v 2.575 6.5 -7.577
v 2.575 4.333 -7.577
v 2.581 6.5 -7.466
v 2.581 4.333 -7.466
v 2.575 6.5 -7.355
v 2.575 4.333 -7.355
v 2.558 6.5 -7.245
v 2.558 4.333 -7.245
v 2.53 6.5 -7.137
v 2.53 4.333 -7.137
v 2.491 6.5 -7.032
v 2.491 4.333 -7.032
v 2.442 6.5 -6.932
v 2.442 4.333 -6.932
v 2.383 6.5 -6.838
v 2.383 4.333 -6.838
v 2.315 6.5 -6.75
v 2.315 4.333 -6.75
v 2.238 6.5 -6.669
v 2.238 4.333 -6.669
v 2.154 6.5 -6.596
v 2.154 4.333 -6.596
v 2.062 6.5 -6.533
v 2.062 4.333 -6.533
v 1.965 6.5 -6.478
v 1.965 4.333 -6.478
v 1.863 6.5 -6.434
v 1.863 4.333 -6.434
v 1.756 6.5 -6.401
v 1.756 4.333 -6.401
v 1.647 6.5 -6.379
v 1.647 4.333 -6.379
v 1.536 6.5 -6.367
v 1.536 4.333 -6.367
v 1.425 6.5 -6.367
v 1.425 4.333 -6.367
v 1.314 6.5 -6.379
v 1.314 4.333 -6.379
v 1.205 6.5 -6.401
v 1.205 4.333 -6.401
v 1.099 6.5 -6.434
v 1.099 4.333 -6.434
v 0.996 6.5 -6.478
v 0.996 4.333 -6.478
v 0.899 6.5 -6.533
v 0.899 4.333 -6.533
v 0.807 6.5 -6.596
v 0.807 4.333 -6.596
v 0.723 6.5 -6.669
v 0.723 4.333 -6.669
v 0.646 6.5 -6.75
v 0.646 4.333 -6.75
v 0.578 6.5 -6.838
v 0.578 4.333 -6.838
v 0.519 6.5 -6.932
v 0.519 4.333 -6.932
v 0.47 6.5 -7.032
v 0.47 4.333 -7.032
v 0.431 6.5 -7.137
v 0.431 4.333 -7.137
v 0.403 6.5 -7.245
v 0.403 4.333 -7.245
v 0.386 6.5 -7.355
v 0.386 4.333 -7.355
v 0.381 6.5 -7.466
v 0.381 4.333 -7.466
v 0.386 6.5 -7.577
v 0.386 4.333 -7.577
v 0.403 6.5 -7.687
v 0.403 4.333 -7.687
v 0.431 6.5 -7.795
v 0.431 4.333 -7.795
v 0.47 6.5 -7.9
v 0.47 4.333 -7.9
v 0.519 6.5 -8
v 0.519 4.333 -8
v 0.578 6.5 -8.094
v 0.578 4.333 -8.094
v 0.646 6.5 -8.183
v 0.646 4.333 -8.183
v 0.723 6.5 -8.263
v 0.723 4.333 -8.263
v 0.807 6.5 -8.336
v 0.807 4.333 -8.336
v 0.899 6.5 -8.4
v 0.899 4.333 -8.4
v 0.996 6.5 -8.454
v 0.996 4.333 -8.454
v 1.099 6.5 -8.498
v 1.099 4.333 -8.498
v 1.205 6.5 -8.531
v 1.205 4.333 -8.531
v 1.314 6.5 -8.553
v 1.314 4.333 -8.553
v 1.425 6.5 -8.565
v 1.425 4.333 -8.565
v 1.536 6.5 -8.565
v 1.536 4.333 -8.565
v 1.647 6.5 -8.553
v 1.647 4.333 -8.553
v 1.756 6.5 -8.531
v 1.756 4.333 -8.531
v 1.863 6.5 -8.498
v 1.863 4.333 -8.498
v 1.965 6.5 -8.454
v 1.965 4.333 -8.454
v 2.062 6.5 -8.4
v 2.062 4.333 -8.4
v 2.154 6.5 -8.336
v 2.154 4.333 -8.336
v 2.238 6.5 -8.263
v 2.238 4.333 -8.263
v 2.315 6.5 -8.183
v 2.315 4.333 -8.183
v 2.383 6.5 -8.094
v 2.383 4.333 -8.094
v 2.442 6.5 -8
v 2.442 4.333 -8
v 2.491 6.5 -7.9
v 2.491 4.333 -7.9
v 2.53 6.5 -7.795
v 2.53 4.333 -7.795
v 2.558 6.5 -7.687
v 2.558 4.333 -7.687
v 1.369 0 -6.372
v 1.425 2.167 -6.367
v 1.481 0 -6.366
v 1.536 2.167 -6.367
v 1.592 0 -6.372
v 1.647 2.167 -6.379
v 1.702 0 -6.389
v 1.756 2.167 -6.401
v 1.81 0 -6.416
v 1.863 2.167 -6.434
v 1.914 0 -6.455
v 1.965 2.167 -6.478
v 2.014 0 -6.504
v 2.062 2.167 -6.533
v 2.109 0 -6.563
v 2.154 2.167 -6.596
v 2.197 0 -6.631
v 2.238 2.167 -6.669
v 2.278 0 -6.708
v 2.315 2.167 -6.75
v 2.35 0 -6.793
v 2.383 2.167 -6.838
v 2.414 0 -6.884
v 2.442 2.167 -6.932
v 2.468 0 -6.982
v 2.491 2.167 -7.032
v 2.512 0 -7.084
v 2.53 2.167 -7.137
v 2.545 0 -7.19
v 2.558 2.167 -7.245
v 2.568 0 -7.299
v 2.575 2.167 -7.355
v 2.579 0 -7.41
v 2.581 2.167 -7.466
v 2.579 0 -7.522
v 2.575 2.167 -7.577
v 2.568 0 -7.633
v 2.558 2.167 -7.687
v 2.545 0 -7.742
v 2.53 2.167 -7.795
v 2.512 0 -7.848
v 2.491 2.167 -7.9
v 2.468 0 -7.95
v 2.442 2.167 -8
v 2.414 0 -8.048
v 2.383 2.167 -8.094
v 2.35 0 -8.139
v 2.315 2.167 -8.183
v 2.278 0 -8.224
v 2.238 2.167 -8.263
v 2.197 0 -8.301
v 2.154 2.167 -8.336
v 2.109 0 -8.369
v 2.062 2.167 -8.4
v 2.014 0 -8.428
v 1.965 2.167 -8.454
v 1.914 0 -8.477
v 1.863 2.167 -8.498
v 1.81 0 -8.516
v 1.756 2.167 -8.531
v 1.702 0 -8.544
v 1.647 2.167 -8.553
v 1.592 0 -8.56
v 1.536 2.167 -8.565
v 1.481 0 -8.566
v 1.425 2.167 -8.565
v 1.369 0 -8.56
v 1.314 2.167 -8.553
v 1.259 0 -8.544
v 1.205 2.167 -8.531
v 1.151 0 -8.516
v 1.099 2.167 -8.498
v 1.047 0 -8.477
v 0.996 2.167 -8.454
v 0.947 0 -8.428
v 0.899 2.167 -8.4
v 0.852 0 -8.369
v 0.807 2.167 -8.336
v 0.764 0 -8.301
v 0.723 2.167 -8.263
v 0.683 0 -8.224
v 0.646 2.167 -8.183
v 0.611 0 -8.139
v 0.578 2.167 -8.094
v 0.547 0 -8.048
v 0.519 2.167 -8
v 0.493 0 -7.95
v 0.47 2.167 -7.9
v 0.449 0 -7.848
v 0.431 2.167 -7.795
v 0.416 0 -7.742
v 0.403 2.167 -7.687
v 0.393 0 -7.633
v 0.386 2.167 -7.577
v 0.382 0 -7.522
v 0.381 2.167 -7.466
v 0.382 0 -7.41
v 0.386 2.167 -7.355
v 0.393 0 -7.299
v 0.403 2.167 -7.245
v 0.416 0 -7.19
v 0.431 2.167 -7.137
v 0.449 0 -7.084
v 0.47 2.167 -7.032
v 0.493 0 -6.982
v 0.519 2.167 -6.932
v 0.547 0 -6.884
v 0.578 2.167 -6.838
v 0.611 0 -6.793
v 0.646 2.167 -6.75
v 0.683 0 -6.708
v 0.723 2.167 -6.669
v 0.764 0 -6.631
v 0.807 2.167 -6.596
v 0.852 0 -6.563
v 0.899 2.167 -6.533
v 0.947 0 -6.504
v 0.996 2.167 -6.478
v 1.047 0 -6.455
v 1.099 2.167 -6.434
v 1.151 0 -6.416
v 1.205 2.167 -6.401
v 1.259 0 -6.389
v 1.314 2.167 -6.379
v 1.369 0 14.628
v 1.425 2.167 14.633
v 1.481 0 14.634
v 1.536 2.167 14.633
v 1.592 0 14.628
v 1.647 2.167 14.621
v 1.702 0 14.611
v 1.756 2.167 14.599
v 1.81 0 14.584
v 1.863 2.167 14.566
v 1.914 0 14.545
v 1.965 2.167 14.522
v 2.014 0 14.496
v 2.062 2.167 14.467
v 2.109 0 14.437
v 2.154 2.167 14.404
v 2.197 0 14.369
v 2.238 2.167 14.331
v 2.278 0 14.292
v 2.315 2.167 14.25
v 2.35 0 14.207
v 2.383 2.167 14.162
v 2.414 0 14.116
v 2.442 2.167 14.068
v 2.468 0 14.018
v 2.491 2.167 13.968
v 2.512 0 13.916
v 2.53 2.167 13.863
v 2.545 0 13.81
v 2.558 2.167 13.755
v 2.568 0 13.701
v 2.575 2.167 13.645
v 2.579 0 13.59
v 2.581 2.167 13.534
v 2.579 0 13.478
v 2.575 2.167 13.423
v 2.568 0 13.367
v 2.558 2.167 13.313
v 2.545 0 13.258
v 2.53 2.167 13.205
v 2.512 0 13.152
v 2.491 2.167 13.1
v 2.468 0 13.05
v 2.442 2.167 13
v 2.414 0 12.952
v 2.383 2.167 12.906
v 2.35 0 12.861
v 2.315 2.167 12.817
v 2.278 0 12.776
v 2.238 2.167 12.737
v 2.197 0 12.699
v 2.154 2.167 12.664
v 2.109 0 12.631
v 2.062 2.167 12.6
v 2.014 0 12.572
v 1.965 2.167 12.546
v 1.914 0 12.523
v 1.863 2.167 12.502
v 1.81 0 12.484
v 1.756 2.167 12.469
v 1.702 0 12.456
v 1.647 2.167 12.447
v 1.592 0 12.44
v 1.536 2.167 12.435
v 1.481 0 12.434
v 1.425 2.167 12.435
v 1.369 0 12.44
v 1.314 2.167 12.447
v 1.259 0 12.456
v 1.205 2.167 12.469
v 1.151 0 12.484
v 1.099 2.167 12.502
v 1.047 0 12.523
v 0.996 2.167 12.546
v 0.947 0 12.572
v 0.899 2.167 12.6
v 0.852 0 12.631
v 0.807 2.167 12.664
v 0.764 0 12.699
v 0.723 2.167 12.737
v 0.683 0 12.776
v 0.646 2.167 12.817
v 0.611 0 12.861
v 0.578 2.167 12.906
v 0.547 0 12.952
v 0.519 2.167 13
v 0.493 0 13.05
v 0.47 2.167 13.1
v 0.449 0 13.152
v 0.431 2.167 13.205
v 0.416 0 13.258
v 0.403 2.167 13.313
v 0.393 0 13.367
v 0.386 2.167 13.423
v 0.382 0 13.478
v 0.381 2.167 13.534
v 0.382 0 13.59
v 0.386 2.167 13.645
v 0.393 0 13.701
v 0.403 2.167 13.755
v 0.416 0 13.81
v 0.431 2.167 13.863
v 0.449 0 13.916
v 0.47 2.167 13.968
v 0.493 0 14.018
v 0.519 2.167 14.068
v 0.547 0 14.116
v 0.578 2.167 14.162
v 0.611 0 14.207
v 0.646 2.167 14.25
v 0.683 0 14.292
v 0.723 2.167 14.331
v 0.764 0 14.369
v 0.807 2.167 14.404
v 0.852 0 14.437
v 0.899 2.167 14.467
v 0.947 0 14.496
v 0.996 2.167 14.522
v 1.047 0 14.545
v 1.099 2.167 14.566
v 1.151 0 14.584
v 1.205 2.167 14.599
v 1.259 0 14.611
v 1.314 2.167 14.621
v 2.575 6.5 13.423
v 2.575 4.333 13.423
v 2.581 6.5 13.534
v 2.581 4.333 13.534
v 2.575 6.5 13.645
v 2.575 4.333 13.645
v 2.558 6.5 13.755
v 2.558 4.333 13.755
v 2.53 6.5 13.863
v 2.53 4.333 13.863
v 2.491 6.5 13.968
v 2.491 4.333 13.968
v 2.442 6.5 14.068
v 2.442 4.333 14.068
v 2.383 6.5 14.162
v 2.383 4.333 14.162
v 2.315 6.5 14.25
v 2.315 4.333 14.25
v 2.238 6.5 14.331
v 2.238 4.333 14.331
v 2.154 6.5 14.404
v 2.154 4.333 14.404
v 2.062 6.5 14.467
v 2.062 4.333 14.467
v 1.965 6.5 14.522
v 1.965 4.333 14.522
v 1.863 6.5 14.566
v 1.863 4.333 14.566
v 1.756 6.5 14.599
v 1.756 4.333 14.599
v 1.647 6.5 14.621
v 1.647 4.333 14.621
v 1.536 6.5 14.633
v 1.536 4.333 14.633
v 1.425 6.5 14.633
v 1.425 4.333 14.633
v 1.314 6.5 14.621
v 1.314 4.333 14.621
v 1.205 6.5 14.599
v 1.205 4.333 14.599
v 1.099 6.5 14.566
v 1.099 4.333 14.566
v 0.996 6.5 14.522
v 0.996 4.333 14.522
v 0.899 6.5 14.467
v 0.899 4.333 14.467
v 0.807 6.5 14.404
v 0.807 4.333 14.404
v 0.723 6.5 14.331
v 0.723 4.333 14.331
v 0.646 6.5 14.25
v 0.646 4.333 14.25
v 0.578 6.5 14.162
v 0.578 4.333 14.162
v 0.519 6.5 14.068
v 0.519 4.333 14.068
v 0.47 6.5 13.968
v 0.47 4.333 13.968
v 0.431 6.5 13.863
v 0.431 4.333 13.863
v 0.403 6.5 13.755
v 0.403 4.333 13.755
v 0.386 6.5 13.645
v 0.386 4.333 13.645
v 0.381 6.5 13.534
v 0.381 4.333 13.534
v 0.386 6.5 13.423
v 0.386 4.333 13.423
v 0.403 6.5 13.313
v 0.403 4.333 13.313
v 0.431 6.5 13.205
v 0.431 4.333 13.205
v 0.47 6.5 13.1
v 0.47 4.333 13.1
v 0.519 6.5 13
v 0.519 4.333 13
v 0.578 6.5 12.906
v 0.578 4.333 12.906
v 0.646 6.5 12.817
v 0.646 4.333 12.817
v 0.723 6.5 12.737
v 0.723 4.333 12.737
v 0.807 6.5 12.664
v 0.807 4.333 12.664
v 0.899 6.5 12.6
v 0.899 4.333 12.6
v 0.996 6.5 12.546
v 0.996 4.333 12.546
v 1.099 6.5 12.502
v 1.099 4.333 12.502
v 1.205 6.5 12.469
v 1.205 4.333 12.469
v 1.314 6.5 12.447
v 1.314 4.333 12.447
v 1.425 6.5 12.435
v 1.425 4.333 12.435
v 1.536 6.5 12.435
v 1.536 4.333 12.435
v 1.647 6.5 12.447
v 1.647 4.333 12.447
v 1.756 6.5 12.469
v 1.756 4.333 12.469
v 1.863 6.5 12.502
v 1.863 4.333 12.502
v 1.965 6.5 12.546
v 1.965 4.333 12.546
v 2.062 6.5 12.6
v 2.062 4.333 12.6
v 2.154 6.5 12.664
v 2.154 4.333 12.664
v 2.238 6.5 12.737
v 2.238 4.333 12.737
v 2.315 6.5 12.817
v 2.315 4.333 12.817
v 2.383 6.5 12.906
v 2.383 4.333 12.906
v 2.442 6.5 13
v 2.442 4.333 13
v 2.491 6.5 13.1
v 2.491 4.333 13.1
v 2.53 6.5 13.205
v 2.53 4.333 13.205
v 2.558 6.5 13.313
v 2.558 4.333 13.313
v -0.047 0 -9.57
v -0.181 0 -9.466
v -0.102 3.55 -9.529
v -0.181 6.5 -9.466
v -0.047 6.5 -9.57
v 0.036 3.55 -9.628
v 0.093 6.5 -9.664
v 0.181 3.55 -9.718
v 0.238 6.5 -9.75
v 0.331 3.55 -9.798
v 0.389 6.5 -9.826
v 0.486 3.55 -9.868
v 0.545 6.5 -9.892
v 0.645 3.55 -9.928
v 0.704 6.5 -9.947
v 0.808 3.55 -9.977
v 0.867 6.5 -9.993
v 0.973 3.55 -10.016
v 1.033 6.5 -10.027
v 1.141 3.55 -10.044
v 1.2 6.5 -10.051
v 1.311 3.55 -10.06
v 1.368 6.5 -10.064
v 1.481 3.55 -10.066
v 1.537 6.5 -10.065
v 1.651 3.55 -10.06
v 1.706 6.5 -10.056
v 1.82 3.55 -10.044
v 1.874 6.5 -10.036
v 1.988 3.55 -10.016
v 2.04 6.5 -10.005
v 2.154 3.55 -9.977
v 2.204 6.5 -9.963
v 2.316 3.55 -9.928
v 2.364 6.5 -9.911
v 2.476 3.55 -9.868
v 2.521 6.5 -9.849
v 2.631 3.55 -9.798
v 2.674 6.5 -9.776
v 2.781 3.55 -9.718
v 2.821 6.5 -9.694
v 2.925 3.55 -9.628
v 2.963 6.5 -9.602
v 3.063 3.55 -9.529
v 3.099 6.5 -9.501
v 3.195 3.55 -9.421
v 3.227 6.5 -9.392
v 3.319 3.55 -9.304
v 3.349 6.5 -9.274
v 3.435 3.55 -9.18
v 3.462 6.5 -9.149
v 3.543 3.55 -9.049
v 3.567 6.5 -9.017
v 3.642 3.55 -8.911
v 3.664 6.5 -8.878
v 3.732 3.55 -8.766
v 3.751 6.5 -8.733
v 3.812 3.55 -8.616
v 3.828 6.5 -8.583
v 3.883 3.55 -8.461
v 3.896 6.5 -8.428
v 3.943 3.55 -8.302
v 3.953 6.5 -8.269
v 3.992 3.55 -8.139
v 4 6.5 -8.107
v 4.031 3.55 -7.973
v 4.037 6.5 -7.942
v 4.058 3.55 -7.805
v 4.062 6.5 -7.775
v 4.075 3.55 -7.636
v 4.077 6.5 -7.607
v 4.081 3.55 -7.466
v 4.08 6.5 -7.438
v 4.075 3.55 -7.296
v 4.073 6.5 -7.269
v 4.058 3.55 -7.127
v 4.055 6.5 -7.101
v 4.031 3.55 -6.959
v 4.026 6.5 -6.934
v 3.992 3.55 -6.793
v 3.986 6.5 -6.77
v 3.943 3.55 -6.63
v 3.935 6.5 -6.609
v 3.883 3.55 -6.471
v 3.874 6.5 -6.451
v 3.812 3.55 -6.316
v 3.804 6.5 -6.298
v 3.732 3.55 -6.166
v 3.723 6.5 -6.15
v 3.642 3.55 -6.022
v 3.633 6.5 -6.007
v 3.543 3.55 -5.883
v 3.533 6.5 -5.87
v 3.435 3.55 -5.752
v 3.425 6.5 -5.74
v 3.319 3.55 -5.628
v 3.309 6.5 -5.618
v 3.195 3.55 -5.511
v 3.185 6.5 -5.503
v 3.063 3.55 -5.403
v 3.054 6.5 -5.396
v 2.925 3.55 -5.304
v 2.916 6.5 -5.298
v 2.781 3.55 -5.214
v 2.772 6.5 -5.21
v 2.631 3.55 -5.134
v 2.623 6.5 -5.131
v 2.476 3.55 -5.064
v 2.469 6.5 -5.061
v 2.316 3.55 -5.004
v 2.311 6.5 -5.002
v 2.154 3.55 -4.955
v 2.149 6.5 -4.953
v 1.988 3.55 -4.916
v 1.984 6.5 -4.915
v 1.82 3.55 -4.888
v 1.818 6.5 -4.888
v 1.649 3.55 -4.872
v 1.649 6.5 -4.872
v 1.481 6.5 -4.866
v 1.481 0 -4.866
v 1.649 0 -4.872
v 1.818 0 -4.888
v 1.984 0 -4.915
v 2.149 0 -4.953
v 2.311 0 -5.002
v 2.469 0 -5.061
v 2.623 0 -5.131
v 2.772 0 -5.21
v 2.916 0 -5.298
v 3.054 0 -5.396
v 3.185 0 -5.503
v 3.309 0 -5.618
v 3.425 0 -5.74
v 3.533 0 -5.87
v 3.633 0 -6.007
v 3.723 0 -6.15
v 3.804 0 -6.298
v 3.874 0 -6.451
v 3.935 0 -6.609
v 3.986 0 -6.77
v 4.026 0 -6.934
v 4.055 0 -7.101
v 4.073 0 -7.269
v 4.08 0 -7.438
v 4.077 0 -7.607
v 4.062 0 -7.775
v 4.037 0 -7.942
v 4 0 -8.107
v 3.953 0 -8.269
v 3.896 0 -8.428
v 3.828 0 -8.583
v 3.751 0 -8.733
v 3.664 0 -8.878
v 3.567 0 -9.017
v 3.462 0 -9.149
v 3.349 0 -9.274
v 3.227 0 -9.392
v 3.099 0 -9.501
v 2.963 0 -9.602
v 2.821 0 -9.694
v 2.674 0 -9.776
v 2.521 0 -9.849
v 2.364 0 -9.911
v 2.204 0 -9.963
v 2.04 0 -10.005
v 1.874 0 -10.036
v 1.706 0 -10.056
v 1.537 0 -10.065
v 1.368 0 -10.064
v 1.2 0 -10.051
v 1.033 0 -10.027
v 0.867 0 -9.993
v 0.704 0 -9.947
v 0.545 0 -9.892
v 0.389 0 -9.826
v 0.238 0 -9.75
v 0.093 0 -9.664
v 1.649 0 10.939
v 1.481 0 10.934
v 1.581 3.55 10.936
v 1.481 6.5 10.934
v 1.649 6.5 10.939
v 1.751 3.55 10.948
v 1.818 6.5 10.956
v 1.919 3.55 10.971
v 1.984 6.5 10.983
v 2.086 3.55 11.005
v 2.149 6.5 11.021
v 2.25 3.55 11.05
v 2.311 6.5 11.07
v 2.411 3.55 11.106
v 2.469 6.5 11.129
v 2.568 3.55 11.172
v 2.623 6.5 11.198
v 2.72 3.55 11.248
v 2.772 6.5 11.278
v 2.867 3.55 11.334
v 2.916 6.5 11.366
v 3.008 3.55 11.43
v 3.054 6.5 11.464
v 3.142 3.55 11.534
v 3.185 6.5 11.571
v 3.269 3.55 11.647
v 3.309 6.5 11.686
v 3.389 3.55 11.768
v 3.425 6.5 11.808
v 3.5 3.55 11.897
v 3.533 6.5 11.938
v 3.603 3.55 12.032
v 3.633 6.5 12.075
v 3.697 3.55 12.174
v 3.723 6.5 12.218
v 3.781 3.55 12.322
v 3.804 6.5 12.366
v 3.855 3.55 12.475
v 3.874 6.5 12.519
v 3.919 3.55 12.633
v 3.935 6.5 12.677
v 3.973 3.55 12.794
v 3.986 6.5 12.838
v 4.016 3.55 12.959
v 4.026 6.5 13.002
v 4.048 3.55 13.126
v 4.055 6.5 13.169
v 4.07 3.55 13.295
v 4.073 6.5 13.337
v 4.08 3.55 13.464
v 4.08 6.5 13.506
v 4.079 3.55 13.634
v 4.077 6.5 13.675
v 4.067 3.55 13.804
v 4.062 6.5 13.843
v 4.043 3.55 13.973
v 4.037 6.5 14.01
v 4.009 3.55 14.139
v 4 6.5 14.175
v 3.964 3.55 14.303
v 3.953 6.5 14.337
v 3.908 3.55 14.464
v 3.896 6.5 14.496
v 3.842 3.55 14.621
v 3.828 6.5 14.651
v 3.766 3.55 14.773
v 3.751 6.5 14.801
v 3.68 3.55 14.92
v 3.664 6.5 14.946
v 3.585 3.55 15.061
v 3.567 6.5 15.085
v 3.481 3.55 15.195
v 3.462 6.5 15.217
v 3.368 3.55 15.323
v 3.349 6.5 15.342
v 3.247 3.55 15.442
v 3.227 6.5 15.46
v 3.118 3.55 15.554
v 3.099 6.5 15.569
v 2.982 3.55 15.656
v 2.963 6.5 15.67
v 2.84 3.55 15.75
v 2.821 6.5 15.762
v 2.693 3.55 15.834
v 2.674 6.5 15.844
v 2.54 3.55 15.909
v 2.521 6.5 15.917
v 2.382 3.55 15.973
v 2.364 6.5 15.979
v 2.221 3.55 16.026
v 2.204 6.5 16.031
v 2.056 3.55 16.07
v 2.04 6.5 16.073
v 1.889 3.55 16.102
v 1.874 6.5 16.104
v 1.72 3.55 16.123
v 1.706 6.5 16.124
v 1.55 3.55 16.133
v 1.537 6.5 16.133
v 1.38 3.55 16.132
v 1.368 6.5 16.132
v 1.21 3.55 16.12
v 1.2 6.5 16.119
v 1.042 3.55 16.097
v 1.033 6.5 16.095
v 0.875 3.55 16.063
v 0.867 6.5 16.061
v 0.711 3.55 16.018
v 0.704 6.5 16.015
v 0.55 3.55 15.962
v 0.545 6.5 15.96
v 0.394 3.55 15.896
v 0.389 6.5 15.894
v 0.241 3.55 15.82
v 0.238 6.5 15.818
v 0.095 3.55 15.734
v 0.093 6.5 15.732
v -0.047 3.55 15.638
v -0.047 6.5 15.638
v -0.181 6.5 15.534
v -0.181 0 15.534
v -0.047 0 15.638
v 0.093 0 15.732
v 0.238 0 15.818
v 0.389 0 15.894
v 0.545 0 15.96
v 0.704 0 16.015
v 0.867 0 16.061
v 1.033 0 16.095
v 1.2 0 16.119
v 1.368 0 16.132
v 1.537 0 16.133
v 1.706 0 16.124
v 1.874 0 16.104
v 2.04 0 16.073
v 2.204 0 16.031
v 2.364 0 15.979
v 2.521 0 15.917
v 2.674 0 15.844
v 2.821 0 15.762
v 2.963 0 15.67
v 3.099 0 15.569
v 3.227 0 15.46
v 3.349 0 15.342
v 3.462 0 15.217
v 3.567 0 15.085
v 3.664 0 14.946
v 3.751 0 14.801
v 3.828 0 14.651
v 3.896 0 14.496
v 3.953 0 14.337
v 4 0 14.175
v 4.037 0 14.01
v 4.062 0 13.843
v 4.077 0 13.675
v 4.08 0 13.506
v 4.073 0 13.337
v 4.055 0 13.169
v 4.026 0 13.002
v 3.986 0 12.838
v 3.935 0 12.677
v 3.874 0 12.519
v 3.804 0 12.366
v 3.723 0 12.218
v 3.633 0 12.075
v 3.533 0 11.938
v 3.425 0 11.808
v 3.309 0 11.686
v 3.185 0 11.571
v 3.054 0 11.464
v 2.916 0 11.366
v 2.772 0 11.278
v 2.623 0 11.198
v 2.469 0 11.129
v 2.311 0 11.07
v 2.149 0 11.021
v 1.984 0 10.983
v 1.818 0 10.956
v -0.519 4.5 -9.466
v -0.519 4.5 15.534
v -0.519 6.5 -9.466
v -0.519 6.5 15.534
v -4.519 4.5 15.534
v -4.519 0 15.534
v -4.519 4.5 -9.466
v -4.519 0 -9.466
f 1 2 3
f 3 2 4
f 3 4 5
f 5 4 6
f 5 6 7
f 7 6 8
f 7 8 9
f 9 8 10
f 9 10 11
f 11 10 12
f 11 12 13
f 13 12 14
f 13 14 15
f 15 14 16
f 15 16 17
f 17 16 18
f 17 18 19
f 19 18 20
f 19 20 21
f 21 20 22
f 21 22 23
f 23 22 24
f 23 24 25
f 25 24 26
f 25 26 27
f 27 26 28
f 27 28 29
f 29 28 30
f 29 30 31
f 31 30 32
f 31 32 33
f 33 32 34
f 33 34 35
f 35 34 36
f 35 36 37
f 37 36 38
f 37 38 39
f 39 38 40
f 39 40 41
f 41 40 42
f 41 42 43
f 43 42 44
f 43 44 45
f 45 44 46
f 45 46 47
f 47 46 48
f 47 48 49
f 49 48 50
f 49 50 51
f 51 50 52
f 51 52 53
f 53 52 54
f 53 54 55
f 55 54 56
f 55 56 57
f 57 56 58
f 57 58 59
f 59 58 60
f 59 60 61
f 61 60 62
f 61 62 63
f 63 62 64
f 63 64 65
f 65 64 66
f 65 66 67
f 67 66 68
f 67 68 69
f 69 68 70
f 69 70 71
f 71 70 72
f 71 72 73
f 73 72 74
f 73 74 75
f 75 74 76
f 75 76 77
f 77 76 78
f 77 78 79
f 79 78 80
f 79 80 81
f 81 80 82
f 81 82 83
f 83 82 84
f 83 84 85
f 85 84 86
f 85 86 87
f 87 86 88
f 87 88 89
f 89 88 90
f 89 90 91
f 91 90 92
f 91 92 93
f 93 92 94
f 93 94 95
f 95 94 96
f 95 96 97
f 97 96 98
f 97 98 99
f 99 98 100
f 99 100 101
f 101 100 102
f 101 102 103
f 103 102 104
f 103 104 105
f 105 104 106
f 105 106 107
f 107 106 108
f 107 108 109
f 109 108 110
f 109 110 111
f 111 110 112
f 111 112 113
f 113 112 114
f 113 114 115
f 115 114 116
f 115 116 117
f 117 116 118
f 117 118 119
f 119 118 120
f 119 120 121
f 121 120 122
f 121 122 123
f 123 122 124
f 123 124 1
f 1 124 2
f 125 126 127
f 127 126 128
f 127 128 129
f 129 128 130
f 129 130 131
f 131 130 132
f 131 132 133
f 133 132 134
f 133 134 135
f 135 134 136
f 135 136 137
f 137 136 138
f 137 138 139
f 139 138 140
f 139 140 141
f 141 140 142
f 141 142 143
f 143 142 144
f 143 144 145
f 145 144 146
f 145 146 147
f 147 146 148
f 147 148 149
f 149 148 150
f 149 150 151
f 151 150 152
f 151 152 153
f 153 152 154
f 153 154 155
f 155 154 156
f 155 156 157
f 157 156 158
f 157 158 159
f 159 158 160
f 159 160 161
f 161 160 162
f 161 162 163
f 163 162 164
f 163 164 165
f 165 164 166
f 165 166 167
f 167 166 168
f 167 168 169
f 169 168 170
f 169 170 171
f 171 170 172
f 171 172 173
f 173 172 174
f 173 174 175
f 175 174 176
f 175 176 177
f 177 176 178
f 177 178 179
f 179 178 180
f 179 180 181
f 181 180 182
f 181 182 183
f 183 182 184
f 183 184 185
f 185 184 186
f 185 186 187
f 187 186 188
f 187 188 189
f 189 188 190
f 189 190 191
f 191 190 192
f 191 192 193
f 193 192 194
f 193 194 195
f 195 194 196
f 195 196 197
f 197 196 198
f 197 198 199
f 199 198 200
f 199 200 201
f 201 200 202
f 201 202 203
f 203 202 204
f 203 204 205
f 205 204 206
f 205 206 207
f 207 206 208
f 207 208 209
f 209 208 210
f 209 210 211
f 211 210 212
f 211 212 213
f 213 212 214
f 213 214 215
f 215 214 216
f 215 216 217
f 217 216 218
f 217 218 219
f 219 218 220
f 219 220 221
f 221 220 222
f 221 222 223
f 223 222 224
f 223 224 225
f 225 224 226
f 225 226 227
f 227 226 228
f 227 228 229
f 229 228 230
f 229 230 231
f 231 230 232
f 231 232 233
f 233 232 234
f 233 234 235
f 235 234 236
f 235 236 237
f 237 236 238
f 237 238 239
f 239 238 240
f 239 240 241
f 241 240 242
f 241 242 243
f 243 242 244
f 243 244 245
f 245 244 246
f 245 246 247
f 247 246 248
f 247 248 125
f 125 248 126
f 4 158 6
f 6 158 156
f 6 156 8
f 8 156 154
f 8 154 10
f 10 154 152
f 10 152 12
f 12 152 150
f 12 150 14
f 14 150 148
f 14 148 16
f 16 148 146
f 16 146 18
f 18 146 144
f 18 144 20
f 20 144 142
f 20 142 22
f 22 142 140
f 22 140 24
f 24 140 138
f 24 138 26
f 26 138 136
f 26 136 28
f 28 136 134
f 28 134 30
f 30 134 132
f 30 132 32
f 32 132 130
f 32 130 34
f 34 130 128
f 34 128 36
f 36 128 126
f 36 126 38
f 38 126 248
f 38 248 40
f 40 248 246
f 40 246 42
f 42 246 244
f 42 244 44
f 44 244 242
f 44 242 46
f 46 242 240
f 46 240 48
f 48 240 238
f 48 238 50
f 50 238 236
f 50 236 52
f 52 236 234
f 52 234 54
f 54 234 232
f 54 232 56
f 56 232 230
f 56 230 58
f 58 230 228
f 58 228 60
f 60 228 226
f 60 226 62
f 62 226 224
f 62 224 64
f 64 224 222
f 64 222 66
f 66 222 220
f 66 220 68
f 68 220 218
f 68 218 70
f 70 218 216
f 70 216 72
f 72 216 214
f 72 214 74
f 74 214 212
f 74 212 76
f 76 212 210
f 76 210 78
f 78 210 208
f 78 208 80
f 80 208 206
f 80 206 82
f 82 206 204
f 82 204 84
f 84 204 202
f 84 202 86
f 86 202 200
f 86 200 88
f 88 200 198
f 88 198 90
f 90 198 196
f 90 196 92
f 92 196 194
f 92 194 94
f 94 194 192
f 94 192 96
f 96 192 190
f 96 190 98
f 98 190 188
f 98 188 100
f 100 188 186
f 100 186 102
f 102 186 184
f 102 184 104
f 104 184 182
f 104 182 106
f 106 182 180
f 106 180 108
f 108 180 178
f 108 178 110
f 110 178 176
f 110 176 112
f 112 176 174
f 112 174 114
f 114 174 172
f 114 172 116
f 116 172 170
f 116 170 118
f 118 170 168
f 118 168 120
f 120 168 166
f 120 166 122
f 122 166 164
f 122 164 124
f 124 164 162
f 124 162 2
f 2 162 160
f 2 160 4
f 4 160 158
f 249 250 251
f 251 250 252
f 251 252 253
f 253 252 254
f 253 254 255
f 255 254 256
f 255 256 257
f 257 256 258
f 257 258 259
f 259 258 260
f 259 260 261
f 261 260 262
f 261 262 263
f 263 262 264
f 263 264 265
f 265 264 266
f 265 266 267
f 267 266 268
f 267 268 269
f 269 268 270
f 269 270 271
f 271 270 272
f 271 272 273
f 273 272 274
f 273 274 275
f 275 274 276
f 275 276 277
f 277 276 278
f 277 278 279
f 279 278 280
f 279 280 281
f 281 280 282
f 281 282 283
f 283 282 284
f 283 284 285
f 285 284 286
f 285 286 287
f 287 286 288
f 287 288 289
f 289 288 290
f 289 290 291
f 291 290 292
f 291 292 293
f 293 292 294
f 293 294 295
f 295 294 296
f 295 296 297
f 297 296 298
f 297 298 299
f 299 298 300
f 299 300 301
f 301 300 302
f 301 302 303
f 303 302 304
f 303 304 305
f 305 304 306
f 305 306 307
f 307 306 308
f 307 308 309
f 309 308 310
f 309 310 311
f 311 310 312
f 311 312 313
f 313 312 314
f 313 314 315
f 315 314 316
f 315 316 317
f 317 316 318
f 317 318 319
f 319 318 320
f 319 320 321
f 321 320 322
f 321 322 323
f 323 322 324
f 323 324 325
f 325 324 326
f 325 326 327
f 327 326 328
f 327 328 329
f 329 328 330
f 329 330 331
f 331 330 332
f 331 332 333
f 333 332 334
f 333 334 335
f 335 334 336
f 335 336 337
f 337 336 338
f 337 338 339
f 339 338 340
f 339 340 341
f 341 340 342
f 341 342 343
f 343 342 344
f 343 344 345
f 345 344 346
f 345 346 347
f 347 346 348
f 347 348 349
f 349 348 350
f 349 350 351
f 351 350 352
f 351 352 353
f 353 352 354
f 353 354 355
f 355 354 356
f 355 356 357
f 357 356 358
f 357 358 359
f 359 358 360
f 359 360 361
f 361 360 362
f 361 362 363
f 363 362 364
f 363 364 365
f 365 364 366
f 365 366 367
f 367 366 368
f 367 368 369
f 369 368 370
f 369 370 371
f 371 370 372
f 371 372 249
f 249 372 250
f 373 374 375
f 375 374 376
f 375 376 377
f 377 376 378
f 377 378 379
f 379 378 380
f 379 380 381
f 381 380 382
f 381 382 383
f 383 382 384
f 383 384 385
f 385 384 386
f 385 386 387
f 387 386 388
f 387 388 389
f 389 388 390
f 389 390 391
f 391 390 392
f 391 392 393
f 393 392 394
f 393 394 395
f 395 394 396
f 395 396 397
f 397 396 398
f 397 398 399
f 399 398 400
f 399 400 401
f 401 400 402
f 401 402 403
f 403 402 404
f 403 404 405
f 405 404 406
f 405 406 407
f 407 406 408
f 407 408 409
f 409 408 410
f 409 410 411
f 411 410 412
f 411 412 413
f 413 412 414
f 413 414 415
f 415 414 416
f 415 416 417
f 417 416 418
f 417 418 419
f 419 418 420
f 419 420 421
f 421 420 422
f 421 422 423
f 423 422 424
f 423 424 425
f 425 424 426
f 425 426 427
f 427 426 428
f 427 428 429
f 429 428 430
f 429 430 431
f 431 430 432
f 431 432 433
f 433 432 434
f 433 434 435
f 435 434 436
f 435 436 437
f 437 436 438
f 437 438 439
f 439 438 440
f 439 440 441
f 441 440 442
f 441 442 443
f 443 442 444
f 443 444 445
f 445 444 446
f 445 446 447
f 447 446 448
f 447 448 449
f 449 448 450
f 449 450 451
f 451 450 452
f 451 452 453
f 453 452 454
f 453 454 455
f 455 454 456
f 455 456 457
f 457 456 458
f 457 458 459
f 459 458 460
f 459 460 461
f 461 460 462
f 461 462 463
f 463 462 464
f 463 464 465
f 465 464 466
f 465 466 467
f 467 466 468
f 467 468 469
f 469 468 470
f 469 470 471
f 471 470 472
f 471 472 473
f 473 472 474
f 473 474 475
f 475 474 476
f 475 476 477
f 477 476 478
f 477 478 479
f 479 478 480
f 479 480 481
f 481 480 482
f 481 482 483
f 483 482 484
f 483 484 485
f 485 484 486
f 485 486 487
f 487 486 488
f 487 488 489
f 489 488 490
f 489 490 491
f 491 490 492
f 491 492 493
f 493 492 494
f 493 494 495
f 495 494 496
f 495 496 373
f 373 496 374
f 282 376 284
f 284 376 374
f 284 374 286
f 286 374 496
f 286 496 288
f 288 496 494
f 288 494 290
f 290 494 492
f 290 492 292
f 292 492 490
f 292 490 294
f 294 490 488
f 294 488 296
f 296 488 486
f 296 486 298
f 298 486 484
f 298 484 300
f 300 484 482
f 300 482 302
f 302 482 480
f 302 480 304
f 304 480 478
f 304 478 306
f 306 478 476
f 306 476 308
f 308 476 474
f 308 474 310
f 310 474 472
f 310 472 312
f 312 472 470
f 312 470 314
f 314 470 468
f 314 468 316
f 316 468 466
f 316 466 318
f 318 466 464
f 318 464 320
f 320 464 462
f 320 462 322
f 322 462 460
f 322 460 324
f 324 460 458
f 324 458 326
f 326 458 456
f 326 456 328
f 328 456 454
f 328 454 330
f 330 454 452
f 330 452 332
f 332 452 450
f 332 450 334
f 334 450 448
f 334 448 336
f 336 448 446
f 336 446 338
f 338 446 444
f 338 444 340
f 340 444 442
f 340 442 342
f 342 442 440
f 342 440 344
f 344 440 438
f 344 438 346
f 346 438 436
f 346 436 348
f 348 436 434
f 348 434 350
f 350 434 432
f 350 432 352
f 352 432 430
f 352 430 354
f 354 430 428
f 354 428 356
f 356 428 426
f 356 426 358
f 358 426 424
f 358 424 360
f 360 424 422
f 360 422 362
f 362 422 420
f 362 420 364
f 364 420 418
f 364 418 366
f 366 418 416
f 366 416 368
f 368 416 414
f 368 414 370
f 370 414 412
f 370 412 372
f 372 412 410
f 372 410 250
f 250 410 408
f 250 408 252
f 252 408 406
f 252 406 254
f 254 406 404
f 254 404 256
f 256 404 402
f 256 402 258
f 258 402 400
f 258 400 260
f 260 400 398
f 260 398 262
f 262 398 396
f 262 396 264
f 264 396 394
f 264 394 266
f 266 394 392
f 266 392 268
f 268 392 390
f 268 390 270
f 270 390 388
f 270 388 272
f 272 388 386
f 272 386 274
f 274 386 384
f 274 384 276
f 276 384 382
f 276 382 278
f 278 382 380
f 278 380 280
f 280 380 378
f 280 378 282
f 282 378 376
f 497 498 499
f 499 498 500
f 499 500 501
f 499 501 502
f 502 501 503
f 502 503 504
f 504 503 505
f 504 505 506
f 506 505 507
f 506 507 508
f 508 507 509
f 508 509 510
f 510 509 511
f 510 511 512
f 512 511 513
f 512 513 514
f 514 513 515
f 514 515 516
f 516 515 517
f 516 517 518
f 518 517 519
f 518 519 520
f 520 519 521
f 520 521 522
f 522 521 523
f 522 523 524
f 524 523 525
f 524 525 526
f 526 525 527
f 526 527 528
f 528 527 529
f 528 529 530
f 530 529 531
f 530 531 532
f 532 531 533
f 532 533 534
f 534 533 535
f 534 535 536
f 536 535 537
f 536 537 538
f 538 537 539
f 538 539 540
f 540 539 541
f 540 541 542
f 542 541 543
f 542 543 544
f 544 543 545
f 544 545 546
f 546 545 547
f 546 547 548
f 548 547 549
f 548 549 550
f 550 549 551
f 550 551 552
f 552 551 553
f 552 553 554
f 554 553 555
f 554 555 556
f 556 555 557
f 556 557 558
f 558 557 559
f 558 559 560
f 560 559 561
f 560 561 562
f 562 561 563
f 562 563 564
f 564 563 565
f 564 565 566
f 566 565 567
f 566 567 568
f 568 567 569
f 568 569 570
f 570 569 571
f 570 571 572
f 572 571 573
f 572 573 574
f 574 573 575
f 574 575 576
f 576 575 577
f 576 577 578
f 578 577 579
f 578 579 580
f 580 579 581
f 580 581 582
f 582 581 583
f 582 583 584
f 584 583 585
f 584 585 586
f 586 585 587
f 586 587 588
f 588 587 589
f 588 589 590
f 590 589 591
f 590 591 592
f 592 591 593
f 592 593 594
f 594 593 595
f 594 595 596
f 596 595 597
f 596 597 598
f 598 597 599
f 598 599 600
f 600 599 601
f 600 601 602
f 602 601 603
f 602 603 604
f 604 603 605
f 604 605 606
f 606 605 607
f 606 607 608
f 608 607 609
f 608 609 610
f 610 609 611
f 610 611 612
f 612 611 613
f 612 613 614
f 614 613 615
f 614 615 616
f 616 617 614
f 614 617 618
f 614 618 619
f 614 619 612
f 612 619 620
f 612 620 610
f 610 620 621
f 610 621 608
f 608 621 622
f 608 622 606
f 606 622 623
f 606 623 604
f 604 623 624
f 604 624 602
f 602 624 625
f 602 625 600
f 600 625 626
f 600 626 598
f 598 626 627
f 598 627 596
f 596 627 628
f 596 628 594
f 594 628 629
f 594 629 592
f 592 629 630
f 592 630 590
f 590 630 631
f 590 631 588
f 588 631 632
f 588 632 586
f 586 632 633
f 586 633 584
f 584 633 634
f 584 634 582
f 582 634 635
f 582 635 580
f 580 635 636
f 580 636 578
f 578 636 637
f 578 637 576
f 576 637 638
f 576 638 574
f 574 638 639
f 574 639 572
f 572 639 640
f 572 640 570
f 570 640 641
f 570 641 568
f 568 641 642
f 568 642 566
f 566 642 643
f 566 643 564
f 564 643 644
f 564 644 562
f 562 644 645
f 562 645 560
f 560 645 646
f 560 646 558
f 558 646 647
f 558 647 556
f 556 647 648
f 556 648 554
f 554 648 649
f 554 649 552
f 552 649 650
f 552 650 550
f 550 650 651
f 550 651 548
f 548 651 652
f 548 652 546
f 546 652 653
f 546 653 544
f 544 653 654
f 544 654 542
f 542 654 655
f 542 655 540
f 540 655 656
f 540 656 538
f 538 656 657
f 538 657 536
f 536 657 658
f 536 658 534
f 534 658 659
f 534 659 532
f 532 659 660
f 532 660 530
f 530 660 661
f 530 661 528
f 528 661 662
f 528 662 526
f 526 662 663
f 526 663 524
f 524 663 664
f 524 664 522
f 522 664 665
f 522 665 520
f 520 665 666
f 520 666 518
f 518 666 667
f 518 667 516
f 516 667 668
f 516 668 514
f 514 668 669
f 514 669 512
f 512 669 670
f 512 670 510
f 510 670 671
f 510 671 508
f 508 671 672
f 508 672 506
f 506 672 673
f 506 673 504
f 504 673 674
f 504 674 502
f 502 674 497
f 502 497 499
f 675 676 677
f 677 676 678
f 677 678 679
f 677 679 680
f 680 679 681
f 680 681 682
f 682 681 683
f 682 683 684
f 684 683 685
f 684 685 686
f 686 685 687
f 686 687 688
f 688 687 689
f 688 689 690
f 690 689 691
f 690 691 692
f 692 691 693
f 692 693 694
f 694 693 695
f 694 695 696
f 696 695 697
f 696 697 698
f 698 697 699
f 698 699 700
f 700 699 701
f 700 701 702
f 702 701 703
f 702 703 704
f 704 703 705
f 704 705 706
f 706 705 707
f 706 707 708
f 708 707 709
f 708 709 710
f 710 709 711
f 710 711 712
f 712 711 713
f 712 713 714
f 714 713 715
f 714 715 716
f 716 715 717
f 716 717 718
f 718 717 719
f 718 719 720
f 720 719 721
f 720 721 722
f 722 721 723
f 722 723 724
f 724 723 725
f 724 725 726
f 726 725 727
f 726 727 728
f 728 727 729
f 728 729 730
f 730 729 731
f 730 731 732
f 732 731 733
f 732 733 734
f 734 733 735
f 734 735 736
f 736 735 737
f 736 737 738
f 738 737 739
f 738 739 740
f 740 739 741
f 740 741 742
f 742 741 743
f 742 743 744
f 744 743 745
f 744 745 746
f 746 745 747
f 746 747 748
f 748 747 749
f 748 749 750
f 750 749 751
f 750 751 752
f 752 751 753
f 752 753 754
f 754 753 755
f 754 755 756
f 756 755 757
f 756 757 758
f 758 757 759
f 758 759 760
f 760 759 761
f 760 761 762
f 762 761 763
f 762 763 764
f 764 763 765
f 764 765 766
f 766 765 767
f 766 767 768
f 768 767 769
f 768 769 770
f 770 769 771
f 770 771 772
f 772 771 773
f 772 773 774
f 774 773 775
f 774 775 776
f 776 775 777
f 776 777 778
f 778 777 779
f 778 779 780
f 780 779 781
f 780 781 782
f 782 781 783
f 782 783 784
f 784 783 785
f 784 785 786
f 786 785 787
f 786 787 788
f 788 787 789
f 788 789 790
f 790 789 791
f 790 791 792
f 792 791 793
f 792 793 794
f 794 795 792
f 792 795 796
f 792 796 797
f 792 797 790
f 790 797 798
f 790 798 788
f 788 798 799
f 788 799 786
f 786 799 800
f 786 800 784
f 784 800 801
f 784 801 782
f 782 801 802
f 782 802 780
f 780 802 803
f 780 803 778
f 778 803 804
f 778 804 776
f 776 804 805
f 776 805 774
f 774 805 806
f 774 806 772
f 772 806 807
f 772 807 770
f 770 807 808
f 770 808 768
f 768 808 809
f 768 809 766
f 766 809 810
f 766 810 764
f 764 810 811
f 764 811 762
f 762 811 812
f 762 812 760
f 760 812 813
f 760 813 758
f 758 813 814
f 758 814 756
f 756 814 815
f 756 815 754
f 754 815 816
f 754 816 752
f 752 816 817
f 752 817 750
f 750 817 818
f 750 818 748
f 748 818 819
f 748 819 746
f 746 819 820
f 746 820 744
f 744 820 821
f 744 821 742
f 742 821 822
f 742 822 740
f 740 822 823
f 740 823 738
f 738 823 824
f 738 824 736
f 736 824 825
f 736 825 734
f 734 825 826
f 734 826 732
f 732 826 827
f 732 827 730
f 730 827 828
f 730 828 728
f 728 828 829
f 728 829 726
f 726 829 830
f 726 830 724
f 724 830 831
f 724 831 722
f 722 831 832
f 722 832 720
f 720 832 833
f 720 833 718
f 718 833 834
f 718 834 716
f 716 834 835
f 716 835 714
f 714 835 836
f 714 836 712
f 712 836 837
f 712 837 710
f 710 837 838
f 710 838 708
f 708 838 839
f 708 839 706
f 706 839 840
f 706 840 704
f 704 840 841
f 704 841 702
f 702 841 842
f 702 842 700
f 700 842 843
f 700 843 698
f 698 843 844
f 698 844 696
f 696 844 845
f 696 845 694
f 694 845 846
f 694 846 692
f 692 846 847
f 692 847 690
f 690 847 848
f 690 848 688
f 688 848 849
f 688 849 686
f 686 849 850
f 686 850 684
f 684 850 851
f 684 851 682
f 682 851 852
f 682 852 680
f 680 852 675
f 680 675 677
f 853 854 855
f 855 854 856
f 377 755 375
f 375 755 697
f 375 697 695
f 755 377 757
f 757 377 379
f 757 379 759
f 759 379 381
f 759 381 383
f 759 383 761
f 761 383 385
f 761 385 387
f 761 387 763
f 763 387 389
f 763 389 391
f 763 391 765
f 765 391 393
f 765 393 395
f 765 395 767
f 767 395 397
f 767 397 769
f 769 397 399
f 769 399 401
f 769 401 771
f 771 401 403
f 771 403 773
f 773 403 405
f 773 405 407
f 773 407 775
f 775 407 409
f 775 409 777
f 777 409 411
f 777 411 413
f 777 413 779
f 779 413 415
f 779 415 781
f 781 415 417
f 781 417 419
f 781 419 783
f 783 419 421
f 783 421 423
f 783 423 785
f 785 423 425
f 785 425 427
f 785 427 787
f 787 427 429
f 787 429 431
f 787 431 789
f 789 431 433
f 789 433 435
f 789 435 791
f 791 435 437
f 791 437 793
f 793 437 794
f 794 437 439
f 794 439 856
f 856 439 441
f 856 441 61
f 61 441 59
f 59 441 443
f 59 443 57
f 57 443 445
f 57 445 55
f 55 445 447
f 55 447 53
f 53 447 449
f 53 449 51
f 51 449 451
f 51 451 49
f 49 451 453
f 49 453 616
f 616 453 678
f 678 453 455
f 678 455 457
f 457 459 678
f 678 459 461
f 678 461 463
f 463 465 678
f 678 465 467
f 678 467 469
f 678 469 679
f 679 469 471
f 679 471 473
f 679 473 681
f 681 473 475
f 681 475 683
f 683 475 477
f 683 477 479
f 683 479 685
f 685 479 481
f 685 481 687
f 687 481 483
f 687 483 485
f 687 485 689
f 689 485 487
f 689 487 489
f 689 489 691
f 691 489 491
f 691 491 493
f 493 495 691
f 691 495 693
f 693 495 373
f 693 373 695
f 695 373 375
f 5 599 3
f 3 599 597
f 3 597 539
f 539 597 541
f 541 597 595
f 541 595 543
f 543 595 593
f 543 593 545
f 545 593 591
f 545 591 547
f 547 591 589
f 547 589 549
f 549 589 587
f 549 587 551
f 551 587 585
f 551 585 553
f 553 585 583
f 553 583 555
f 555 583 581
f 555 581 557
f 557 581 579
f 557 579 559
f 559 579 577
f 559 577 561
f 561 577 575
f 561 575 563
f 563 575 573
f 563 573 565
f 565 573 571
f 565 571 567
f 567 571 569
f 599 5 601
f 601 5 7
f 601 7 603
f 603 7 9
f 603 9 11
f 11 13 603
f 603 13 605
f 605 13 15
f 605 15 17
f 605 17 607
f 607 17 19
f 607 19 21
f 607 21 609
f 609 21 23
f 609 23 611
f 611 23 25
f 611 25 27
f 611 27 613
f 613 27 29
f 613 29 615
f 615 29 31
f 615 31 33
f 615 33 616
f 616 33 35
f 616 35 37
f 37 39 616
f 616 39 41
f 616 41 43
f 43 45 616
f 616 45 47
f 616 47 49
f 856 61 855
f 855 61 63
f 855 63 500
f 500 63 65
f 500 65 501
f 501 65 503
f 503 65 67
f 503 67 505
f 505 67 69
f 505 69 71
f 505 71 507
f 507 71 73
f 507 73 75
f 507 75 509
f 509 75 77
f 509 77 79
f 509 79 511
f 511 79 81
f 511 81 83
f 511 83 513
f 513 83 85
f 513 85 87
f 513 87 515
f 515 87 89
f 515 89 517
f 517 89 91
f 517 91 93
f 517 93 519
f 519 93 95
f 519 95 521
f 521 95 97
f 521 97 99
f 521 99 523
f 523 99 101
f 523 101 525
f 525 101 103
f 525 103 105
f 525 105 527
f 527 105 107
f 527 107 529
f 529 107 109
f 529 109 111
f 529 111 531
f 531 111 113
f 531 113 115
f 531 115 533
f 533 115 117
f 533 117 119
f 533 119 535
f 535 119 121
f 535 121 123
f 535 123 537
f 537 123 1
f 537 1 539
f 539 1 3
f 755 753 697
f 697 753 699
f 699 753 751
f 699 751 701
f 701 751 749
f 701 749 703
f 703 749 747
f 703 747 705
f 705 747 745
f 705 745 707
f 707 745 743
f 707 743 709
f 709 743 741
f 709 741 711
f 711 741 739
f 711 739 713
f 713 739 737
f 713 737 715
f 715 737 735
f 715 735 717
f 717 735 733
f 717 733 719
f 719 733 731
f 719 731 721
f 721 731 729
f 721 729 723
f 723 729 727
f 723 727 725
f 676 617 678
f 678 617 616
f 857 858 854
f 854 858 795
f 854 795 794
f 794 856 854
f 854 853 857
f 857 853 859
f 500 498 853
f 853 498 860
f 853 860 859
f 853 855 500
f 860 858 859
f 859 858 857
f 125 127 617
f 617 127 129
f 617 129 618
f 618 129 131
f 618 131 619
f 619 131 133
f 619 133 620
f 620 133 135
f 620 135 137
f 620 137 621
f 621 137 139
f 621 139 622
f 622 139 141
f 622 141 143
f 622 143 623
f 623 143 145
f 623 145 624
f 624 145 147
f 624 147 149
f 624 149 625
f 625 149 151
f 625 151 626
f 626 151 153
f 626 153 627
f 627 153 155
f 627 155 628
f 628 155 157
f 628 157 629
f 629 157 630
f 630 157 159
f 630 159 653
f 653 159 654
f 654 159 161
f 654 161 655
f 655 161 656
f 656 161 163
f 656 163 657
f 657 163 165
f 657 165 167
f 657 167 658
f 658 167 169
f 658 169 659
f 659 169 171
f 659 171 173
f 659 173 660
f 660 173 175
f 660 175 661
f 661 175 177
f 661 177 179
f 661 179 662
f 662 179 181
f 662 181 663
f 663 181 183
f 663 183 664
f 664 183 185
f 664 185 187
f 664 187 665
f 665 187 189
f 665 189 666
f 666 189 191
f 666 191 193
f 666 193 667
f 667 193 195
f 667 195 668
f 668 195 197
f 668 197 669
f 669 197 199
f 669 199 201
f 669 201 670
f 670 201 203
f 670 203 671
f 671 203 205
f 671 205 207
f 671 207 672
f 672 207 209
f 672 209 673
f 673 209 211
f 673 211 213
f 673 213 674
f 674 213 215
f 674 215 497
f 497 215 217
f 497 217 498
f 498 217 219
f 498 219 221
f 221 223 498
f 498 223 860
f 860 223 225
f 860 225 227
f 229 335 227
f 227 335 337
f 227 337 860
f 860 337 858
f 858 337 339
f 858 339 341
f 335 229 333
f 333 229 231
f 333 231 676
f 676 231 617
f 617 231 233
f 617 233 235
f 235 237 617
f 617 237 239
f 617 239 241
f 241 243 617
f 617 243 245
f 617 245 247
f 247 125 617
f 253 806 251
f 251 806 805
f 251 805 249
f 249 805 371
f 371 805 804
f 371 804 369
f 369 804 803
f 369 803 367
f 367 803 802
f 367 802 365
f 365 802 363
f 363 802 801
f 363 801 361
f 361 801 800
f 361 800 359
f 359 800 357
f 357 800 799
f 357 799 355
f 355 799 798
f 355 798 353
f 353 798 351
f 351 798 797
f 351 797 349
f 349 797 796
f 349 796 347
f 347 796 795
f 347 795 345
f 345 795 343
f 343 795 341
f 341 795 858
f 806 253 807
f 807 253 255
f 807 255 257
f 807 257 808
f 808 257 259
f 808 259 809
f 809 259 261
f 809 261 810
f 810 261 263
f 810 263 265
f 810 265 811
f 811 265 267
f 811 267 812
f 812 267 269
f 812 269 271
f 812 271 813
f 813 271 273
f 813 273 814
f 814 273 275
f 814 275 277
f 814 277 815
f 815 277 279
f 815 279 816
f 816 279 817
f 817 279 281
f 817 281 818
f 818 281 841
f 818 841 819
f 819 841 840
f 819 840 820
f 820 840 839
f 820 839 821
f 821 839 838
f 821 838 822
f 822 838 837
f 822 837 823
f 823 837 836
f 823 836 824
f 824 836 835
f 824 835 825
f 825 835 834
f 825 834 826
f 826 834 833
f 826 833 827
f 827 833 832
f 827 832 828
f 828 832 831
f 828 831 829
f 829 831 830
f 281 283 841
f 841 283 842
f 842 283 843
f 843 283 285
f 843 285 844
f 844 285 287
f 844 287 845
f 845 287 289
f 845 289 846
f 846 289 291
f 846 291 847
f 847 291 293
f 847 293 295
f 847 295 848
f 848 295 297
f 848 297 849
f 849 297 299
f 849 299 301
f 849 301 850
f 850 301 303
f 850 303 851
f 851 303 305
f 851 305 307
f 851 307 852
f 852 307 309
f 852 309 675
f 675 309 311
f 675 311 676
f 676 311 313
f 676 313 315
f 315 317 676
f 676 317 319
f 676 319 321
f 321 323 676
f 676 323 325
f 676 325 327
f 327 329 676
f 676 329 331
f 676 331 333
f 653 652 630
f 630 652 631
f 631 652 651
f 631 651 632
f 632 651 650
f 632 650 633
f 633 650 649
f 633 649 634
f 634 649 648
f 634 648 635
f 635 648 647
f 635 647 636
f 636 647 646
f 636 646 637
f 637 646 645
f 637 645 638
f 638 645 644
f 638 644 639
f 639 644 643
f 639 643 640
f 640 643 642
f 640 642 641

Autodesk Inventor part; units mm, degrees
ref_plane "YZ Plane" through (0, 0, 0) normal (1, 0, 0) x (0, 1, 0)
ref_plane "XZ Plane" through (0, 0, 0) normal (0, 1, 0) x (-1, 0, 0)
ref_plane "XY Plane" through (0, 0, 0) normal (0, 0, 1) x (1, 0, 0)
sketch "Sketch1" plane through (0, 0, 0) normal (0, 1, 0) x (-1, 0, 0)
  line L0 (4.5194, 15.534) -> (-1.4806, 15.534)
  line L1 (-1.4806, 15.534) -> (-1.4806, -9.466)
  line L2 (-1.4806, -9.466) -> (4.5194, -9.466)
  line L3 (4.5194, -9.466) -> (4.5194, 15.534)
  point P0 (0, 0)
  dimension "d0" = 25
  dimension "d1" = 6
extrude "Extrusion1" add sketch "Sketch1" along normal blind 4.5
sketch "Sketch2" plane through (0, 4.5, 0) normal (0, 1, 0) x (1, 0, 0)
  line L0 (1.4806, -15.534) -> (1.4806, 9.466) projected
  line L1 (-4.5194, -15.534) -> (1.4806, -15.534) projected
  line L2 (-0.1807, 9.466) -> (-0.5194, 9.466)
  line L3 (-0.5194, 9.466) -> (-0.5194, -15.534)
  line L4 (-0.5194, -15.534) -> (-0.1807, -15.534)
  circle A0 centre (1.4806, 7.466) radius 1.1
  circle A1 centre (1.4806, -13.534) radius 1.1
  arc A2 (-0.1807, -15.534) -> (1.4806, -10.934) centre (1.4806, -13.534) ccw
  arc A3 (1.4806, 4.866) -> (-0.1807, 9.466) centre (1.4806, 7.466) ccw
  line L5 (1.4806, -10.934) -> (1.4806, 4.866)
  point P0 (0, 0)
  point P1 (1.4806, 10.066)
  point P2 (1.4806, -16.134)
  dimension "d4" = 2
  dimension "d5" = 2.2
  dimension "d6" = 0
  dimension "d8" = 2
  dimension "d9" = 2.2
  dimension "d10" = 0
  dimension "d11" = 2
  dimension "d17" = 1.5
  dimension "d18" = 1.5
extrude "Extrusion3" add sketch "Sketch2" along normal blind 2 and the other way blind 4.5 contours L0 A1 L1 L3 L2 A3 | A2 L1 L0 A1
extrude "Extrusion4" cut sketch "Sketch2" along normal through all both and the other way through all contours A0 L0 | L0 A0 | A1 L0 | L0 A1
properties part number "rectSotto"
